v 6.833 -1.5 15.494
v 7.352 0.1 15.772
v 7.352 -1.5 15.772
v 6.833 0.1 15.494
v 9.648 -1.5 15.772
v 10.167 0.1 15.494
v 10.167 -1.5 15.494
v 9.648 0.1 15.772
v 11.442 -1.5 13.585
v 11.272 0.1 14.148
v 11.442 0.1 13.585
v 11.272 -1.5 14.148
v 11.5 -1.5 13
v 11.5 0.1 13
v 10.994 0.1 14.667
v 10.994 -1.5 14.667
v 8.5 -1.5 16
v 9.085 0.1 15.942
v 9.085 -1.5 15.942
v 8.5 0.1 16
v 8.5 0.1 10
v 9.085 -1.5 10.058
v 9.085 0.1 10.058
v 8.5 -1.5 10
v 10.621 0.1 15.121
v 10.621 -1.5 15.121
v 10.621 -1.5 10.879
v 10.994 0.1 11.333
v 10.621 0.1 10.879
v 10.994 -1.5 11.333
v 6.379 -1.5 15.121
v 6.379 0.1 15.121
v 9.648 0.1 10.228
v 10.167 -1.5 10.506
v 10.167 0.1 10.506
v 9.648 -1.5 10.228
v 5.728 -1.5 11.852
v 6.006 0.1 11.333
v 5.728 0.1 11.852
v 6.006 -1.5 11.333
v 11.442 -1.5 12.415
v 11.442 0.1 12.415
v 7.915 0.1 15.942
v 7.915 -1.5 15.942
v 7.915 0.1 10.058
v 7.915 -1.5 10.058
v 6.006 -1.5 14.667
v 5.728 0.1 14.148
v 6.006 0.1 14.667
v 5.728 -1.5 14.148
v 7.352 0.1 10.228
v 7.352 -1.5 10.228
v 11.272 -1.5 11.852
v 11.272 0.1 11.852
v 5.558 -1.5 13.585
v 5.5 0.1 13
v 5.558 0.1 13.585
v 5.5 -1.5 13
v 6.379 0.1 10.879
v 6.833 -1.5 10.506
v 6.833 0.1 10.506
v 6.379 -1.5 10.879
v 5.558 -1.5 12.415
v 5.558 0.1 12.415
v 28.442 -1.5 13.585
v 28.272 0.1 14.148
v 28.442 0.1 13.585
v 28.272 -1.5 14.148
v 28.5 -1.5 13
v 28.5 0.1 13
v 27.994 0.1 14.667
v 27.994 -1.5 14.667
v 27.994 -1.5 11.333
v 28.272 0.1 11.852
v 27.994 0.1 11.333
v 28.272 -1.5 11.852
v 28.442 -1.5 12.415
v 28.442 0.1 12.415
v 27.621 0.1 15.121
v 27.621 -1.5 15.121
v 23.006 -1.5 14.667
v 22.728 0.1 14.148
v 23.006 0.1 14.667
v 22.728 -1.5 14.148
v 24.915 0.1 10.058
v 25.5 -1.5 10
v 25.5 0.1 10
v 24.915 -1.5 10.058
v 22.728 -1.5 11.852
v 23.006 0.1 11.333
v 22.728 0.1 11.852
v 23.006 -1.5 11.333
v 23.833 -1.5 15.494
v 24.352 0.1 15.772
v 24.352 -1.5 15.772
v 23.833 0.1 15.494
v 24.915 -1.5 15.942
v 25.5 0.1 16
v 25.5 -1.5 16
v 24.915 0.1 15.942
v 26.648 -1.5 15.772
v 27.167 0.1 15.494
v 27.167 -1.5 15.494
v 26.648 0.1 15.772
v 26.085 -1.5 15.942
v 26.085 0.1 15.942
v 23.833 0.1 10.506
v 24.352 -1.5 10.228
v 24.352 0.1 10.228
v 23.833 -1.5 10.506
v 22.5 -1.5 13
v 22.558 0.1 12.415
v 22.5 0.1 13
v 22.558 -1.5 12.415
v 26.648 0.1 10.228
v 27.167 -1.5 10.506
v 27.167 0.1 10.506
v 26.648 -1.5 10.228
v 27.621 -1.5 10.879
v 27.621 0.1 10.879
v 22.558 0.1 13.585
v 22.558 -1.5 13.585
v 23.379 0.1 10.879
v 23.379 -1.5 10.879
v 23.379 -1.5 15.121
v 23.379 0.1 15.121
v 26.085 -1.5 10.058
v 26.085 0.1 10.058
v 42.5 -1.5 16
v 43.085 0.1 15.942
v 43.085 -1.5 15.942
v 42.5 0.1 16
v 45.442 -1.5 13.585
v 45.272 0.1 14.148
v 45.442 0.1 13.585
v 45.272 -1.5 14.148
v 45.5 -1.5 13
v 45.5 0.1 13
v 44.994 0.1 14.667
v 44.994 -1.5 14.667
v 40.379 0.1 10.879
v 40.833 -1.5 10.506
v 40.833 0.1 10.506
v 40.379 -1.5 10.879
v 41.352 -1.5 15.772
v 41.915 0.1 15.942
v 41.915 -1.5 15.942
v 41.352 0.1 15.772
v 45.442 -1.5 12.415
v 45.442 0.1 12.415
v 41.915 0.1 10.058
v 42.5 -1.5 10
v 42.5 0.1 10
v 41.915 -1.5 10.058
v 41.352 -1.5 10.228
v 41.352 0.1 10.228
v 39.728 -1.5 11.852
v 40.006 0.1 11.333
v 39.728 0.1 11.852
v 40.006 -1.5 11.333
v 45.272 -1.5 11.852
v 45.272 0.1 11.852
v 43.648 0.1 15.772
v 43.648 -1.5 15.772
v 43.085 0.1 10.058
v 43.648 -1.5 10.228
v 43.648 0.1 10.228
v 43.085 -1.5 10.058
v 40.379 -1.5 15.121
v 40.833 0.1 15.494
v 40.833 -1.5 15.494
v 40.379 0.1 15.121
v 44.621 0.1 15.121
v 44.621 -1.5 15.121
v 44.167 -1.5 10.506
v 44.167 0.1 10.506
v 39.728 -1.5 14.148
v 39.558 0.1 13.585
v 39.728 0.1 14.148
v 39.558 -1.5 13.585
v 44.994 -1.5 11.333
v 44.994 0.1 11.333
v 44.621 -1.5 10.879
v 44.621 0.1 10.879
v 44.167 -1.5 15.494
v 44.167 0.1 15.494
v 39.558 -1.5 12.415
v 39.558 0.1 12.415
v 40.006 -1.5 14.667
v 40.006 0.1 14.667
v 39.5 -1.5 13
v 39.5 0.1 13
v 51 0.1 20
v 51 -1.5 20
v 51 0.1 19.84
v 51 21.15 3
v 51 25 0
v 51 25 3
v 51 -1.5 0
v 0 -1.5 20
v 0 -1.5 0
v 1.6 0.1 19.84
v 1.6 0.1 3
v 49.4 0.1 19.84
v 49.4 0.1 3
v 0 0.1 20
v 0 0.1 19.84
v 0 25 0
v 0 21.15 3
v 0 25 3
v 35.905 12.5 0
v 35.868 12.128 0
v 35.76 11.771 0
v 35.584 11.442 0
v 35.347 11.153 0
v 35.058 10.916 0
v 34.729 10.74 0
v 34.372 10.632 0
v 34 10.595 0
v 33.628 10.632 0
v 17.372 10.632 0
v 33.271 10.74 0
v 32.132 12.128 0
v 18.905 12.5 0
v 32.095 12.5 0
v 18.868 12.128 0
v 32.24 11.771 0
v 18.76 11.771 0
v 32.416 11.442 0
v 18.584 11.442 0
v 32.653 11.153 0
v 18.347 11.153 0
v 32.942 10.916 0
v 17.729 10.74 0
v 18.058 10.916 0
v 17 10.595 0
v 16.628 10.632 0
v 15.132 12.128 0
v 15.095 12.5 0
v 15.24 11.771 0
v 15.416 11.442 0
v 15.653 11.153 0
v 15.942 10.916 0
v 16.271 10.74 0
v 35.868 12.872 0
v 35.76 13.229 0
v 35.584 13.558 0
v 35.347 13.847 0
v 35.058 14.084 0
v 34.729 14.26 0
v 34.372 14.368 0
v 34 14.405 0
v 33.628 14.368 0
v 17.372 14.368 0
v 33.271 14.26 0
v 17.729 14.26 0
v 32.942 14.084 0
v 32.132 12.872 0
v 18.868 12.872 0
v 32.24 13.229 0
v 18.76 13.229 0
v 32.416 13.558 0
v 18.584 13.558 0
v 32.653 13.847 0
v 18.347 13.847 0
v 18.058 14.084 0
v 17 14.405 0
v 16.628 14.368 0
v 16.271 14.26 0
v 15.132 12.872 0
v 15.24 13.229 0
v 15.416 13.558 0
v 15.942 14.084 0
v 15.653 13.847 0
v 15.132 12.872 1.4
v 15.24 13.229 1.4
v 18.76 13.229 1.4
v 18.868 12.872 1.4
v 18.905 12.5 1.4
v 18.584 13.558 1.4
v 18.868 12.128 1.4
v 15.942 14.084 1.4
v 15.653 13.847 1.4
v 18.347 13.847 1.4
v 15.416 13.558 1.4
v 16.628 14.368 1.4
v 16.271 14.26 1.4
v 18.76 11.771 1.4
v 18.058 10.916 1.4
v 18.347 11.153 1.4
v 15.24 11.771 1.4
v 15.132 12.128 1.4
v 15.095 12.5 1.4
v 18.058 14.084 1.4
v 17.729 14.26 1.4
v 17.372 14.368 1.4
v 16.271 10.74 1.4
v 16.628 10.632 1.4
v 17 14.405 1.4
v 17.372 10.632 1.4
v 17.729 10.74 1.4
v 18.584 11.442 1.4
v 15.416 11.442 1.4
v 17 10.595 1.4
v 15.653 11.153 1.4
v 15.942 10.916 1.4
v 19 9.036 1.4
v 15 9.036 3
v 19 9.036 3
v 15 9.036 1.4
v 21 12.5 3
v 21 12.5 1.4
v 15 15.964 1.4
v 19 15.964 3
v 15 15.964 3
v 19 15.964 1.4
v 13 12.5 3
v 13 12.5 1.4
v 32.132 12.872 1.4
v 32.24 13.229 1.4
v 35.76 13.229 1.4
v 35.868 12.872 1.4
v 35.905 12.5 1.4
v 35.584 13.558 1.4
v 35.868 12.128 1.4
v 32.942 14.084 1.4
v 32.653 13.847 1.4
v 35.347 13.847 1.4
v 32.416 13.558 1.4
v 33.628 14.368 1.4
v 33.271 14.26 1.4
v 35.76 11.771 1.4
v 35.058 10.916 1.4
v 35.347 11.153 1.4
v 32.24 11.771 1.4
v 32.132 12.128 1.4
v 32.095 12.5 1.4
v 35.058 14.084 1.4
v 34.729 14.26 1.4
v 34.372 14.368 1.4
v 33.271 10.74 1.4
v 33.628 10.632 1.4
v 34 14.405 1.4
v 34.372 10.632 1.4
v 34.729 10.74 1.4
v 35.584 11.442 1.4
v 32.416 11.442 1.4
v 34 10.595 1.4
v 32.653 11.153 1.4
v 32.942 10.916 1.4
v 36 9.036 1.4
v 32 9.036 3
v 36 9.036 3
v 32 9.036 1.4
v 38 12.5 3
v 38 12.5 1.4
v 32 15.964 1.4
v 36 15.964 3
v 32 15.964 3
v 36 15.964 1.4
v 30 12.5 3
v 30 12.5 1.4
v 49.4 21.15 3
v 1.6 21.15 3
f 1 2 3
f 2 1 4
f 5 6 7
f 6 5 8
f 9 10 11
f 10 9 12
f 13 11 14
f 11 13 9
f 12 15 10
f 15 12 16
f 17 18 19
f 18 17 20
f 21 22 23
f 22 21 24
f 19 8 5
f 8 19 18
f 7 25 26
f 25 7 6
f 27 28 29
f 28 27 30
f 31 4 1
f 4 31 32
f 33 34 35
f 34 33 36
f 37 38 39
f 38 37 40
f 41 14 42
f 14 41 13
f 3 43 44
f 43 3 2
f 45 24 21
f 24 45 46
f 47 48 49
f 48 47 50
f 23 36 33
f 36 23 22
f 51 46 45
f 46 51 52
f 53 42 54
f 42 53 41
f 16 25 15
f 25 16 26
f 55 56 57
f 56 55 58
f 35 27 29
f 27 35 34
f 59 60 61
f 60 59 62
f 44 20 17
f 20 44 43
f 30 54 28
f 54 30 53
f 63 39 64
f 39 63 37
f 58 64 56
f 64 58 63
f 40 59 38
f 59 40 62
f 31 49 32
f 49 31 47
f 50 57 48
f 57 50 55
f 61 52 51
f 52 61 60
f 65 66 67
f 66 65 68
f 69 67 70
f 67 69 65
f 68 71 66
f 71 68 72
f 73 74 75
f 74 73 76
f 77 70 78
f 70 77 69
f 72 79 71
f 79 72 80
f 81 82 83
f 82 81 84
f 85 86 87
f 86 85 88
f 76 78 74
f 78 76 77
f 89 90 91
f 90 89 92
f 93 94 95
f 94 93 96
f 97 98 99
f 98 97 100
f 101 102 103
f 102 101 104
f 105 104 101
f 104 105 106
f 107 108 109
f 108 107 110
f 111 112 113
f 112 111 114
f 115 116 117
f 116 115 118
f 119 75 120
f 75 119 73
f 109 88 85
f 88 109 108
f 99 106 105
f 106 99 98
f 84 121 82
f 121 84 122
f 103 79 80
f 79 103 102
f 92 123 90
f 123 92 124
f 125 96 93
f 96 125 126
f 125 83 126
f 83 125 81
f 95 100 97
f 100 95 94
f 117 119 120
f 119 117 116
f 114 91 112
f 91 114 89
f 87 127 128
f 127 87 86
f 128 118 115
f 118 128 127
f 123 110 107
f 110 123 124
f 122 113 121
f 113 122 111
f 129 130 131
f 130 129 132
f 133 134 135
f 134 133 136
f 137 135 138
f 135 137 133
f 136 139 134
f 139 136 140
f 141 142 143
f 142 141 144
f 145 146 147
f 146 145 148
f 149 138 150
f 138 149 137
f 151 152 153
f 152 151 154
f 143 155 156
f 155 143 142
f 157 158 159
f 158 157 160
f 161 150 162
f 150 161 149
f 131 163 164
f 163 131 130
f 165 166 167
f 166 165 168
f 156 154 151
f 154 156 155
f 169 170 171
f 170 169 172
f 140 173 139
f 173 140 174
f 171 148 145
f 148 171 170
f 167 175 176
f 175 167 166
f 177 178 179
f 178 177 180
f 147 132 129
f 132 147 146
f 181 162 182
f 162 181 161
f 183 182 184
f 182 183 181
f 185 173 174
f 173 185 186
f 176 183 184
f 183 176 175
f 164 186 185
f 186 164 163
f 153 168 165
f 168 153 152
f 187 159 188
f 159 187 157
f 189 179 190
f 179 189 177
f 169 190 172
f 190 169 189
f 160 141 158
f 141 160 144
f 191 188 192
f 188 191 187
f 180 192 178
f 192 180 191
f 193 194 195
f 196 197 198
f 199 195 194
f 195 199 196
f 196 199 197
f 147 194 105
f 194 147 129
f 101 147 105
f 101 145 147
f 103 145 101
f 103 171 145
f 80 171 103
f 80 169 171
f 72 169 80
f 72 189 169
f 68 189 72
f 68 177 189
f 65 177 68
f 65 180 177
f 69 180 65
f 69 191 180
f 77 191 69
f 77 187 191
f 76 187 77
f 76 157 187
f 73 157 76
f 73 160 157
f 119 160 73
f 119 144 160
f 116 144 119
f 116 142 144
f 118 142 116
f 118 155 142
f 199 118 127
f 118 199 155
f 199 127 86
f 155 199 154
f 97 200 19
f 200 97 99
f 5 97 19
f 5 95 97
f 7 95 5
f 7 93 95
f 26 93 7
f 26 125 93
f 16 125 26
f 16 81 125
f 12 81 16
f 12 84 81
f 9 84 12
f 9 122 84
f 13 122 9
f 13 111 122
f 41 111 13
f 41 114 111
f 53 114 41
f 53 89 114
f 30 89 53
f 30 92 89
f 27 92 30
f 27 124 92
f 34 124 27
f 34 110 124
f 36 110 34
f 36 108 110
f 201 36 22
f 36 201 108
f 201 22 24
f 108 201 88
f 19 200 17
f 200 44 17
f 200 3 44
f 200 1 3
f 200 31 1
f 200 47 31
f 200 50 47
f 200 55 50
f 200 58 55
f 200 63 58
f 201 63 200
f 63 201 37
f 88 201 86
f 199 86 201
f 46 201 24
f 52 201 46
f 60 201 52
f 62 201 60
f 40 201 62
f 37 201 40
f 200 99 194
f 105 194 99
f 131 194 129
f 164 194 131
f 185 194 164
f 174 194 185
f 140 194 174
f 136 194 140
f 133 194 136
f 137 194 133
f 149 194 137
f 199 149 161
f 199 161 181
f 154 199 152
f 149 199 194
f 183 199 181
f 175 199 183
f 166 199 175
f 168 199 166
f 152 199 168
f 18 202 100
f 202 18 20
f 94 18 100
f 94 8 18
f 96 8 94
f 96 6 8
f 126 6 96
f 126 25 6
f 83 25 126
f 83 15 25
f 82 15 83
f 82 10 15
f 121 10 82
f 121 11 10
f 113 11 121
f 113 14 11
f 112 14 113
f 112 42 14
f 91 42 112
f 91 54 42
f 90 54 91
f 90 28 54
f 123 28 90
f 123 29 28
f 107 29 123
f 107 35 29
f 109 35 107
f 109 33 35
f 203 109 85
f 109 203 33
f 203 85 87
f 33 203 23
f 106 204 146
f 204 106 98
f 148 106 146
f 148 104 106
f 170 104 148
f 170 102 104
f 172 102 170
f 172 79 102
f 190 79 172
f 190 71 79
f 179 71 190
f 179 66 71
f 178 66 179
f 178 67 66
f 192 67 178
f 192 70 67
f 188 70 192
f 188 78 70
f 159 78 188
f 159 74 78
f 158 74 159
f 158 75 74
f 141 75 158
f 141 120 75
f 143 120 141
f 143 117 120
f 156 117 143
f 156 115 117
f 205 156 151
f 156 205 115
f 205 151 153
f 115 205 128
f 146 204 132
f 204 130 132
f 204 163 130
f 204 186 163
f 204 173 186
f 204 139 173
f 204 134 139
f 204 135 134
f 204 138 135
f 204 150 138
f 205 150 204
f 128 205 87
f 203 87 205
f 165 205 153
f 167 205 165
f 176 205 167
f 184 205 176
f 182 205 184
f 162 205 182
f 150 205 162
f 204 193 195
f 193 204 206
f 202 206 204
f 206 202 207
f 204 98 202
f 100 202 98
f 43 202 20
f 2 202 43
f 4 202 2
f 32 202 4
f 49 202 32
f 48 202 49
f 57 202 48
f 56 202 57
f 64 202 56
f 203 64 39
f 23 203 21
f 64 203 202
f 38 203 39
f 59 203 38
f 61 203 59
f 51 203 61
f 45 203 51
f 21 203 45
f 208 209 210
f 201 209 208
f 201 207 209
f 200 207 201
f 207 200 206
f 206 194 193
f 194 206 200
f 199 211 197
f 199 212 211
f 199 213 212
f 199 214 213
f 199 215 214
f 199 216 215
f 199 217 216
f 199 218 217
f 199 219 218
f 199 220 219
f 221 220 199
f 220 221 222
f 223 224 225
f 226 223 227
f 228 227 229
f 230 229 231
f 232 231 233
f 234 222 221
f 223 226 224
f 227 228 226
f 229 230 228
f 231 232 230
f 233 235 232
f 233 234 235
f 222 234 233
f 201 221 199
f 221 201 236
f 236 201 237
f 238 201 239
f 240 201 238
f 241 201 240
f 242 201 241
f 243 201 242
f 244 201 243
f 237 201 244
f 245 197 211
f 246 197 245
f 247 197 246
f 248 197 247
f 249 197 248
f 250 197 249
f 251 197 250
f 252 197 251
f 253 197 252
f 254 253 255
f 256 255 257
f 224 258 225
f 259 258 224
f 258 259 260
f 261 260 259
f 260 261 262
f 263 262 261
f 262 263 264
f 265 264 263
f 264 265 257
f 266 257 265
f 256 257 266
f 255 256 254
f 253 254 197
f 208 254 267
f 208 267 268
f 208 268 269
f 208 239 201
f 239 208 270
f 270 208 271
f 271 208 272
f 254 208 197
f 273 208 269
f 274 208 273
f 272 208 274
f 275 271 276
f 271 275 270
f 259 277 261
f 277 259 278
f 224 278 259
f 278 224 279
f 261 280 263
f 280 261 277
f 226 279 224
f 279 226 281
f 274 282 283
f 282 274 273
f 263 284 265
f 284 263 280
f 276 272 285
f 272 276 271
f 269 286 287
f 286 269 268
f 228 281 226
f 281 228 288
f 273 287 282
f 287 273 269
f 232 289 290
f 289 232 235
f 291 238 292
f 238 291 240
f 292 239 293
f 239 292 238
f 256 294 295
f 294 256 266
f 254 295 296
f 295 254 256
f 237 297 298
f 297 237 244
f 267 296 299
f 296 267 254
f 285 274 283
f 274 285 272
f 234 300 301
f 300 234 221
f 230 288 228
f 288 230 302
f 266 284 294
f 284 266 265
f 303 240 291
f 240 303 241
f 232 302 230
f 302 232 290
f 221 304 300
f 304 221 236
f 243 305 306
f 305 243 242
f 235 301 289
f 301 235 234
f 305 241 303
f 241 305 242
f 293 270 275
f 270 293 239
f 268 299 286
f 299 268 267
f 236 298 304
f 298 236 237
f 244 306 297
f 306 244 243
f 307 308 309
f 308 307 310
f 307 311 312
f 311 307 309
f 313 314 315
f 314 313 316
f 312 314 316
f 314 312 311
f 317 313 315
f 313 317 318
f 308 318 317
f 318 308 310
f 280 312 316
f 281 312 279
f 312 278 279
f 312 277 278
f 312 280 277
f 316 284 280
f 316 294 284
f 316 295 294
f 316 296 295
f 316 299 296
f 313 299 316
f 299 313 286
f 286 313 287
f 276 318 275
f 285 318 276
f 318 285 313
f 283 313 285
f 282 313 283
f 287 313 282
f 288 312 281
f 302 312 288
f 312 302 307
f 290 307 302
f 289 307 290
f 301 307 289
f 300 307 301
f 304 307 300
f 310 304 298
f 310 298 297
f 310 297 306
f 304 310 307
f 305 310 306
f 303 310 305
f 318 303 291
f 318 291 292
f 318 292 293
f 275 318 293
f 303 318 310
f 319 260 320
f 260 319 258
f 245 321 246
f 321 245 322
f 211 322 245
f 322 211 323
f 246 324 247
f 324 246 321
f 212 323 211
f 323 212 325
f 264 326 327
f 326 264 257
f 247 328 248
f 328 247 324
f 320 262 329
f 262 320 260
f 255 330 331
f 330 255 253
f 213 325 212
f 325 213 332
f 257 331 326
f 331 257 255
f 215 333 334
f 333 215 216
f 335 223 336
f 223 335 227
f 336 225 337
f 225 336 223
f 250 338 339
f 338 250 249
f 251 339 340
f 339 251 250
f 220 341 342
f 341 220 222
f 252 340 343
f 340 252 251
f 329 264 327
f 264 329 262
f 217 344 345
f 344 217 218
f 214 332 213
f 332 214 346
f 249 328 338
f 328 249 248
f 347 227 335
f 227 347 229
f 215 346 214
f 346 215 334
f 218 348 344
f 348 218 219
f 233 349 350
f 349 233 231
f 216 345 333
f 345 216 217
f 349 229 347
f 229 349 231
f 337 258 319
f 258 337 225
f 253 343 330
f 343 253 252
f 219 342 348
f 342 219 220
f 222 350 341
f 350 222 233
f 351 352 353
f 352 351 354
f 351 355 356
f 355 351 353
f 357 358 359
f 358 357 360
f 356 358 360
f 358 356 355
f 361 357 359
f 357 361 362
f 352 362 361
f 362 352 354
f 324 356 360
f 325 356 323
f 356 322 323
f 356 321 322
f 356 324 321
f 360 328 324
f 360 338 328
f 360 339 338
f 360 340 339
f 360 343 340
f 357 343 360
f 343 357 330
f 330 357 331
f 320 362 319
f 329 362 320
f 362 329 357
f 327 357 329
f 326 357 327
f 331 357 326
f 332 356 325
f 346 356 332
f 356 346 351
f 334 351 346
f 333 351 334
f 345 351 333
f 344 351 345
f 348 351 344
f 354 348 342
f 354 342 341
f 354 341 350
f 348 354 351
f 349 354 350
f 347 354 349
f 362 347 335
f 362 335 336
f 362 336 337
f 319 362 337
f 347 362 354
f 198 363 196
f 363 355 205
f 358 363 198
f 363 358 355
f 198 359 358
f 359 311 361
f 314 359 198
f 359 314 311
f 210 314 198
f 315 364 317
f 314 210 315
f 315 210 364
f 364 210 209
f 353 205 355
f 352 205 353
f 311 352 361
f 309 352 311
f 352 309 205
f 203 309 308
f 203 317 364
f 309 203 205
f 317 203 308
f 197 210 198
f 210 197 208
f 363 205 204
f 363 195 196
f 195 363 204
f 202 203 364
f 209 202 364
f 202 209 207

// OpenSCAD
//
// bracket for mini toggle switches
//

e = 0.1;
$fn = 32;
mm = 25.4;

nsw = 3;			/* number of switches */

mtg_hole = 0.15*mm; 		/* mounting hole (6-32) */
mtg_nut = 8;

hole_dia = 6;			/* switch hole */

f_thk = 1.6;			/* front thick */
b_thk = 3;			/* base thick */
s_thk = 1.6;			/* side thickness */

sw_spc = 17;			/* pitch */


// front panel in x/y
f_wid = sw_spc*nsw;
f_hgt = 17+b_thk;			/* front panel height */
f_hole = 10+b_thk;			/* front panel hole offset from bottom */
module front() {
     difference() {
	  cube( [f_wid, f_hgt, f_thk]);
	  translate( [sw_spc/2, f_hole, -e]) {
	       for( i=[0:nsw-1]) {
		    translate( [i*sw_spc, 0, 0])
			 cylinder( h=f_thk+3*2, d=hole_dia);
	       }
	  }
     }
}

module hex( h, d) {
     $fn = 6;
     cylinder( h=h, d=d);
}

module mtg_hole_at( x, y) {
     translate( [x, y, -e]) {
	  cylinder( h=b_thk+2*e, d=mtg_hole);
	  translate( [0, 0, b_thk/2])
	       hex( b_thk, mtg_nut);
     }
}

// base plate in x/y
base_wid = f_wid;
base_hgt = 25;
module base() {
     difference() {
	  cube( [base_wid, base_hgt, b_thk]);
	  mtg_hole_at( sw_spc, base_hgt/2);
	  mtg_hole_at( base_wid-sw_spc, base_hgt/2);
     }
}


// side bracket
module side() {
     linear_extrude( height=s_thk, convexity=10) {
	  polygon( [[0,0] , [base_hgt, 0], [0, f_hgt] ]);
     }
}


translate( [0, e, 0])  rotate( [90, 0, 0])  front();
base();

translate( [base_wid-s_thk, -e, 0])  rotate( [90, 0, 90])   side();
translate( [0, -e, 0])  rotate( [90, 0, 90])   side();
